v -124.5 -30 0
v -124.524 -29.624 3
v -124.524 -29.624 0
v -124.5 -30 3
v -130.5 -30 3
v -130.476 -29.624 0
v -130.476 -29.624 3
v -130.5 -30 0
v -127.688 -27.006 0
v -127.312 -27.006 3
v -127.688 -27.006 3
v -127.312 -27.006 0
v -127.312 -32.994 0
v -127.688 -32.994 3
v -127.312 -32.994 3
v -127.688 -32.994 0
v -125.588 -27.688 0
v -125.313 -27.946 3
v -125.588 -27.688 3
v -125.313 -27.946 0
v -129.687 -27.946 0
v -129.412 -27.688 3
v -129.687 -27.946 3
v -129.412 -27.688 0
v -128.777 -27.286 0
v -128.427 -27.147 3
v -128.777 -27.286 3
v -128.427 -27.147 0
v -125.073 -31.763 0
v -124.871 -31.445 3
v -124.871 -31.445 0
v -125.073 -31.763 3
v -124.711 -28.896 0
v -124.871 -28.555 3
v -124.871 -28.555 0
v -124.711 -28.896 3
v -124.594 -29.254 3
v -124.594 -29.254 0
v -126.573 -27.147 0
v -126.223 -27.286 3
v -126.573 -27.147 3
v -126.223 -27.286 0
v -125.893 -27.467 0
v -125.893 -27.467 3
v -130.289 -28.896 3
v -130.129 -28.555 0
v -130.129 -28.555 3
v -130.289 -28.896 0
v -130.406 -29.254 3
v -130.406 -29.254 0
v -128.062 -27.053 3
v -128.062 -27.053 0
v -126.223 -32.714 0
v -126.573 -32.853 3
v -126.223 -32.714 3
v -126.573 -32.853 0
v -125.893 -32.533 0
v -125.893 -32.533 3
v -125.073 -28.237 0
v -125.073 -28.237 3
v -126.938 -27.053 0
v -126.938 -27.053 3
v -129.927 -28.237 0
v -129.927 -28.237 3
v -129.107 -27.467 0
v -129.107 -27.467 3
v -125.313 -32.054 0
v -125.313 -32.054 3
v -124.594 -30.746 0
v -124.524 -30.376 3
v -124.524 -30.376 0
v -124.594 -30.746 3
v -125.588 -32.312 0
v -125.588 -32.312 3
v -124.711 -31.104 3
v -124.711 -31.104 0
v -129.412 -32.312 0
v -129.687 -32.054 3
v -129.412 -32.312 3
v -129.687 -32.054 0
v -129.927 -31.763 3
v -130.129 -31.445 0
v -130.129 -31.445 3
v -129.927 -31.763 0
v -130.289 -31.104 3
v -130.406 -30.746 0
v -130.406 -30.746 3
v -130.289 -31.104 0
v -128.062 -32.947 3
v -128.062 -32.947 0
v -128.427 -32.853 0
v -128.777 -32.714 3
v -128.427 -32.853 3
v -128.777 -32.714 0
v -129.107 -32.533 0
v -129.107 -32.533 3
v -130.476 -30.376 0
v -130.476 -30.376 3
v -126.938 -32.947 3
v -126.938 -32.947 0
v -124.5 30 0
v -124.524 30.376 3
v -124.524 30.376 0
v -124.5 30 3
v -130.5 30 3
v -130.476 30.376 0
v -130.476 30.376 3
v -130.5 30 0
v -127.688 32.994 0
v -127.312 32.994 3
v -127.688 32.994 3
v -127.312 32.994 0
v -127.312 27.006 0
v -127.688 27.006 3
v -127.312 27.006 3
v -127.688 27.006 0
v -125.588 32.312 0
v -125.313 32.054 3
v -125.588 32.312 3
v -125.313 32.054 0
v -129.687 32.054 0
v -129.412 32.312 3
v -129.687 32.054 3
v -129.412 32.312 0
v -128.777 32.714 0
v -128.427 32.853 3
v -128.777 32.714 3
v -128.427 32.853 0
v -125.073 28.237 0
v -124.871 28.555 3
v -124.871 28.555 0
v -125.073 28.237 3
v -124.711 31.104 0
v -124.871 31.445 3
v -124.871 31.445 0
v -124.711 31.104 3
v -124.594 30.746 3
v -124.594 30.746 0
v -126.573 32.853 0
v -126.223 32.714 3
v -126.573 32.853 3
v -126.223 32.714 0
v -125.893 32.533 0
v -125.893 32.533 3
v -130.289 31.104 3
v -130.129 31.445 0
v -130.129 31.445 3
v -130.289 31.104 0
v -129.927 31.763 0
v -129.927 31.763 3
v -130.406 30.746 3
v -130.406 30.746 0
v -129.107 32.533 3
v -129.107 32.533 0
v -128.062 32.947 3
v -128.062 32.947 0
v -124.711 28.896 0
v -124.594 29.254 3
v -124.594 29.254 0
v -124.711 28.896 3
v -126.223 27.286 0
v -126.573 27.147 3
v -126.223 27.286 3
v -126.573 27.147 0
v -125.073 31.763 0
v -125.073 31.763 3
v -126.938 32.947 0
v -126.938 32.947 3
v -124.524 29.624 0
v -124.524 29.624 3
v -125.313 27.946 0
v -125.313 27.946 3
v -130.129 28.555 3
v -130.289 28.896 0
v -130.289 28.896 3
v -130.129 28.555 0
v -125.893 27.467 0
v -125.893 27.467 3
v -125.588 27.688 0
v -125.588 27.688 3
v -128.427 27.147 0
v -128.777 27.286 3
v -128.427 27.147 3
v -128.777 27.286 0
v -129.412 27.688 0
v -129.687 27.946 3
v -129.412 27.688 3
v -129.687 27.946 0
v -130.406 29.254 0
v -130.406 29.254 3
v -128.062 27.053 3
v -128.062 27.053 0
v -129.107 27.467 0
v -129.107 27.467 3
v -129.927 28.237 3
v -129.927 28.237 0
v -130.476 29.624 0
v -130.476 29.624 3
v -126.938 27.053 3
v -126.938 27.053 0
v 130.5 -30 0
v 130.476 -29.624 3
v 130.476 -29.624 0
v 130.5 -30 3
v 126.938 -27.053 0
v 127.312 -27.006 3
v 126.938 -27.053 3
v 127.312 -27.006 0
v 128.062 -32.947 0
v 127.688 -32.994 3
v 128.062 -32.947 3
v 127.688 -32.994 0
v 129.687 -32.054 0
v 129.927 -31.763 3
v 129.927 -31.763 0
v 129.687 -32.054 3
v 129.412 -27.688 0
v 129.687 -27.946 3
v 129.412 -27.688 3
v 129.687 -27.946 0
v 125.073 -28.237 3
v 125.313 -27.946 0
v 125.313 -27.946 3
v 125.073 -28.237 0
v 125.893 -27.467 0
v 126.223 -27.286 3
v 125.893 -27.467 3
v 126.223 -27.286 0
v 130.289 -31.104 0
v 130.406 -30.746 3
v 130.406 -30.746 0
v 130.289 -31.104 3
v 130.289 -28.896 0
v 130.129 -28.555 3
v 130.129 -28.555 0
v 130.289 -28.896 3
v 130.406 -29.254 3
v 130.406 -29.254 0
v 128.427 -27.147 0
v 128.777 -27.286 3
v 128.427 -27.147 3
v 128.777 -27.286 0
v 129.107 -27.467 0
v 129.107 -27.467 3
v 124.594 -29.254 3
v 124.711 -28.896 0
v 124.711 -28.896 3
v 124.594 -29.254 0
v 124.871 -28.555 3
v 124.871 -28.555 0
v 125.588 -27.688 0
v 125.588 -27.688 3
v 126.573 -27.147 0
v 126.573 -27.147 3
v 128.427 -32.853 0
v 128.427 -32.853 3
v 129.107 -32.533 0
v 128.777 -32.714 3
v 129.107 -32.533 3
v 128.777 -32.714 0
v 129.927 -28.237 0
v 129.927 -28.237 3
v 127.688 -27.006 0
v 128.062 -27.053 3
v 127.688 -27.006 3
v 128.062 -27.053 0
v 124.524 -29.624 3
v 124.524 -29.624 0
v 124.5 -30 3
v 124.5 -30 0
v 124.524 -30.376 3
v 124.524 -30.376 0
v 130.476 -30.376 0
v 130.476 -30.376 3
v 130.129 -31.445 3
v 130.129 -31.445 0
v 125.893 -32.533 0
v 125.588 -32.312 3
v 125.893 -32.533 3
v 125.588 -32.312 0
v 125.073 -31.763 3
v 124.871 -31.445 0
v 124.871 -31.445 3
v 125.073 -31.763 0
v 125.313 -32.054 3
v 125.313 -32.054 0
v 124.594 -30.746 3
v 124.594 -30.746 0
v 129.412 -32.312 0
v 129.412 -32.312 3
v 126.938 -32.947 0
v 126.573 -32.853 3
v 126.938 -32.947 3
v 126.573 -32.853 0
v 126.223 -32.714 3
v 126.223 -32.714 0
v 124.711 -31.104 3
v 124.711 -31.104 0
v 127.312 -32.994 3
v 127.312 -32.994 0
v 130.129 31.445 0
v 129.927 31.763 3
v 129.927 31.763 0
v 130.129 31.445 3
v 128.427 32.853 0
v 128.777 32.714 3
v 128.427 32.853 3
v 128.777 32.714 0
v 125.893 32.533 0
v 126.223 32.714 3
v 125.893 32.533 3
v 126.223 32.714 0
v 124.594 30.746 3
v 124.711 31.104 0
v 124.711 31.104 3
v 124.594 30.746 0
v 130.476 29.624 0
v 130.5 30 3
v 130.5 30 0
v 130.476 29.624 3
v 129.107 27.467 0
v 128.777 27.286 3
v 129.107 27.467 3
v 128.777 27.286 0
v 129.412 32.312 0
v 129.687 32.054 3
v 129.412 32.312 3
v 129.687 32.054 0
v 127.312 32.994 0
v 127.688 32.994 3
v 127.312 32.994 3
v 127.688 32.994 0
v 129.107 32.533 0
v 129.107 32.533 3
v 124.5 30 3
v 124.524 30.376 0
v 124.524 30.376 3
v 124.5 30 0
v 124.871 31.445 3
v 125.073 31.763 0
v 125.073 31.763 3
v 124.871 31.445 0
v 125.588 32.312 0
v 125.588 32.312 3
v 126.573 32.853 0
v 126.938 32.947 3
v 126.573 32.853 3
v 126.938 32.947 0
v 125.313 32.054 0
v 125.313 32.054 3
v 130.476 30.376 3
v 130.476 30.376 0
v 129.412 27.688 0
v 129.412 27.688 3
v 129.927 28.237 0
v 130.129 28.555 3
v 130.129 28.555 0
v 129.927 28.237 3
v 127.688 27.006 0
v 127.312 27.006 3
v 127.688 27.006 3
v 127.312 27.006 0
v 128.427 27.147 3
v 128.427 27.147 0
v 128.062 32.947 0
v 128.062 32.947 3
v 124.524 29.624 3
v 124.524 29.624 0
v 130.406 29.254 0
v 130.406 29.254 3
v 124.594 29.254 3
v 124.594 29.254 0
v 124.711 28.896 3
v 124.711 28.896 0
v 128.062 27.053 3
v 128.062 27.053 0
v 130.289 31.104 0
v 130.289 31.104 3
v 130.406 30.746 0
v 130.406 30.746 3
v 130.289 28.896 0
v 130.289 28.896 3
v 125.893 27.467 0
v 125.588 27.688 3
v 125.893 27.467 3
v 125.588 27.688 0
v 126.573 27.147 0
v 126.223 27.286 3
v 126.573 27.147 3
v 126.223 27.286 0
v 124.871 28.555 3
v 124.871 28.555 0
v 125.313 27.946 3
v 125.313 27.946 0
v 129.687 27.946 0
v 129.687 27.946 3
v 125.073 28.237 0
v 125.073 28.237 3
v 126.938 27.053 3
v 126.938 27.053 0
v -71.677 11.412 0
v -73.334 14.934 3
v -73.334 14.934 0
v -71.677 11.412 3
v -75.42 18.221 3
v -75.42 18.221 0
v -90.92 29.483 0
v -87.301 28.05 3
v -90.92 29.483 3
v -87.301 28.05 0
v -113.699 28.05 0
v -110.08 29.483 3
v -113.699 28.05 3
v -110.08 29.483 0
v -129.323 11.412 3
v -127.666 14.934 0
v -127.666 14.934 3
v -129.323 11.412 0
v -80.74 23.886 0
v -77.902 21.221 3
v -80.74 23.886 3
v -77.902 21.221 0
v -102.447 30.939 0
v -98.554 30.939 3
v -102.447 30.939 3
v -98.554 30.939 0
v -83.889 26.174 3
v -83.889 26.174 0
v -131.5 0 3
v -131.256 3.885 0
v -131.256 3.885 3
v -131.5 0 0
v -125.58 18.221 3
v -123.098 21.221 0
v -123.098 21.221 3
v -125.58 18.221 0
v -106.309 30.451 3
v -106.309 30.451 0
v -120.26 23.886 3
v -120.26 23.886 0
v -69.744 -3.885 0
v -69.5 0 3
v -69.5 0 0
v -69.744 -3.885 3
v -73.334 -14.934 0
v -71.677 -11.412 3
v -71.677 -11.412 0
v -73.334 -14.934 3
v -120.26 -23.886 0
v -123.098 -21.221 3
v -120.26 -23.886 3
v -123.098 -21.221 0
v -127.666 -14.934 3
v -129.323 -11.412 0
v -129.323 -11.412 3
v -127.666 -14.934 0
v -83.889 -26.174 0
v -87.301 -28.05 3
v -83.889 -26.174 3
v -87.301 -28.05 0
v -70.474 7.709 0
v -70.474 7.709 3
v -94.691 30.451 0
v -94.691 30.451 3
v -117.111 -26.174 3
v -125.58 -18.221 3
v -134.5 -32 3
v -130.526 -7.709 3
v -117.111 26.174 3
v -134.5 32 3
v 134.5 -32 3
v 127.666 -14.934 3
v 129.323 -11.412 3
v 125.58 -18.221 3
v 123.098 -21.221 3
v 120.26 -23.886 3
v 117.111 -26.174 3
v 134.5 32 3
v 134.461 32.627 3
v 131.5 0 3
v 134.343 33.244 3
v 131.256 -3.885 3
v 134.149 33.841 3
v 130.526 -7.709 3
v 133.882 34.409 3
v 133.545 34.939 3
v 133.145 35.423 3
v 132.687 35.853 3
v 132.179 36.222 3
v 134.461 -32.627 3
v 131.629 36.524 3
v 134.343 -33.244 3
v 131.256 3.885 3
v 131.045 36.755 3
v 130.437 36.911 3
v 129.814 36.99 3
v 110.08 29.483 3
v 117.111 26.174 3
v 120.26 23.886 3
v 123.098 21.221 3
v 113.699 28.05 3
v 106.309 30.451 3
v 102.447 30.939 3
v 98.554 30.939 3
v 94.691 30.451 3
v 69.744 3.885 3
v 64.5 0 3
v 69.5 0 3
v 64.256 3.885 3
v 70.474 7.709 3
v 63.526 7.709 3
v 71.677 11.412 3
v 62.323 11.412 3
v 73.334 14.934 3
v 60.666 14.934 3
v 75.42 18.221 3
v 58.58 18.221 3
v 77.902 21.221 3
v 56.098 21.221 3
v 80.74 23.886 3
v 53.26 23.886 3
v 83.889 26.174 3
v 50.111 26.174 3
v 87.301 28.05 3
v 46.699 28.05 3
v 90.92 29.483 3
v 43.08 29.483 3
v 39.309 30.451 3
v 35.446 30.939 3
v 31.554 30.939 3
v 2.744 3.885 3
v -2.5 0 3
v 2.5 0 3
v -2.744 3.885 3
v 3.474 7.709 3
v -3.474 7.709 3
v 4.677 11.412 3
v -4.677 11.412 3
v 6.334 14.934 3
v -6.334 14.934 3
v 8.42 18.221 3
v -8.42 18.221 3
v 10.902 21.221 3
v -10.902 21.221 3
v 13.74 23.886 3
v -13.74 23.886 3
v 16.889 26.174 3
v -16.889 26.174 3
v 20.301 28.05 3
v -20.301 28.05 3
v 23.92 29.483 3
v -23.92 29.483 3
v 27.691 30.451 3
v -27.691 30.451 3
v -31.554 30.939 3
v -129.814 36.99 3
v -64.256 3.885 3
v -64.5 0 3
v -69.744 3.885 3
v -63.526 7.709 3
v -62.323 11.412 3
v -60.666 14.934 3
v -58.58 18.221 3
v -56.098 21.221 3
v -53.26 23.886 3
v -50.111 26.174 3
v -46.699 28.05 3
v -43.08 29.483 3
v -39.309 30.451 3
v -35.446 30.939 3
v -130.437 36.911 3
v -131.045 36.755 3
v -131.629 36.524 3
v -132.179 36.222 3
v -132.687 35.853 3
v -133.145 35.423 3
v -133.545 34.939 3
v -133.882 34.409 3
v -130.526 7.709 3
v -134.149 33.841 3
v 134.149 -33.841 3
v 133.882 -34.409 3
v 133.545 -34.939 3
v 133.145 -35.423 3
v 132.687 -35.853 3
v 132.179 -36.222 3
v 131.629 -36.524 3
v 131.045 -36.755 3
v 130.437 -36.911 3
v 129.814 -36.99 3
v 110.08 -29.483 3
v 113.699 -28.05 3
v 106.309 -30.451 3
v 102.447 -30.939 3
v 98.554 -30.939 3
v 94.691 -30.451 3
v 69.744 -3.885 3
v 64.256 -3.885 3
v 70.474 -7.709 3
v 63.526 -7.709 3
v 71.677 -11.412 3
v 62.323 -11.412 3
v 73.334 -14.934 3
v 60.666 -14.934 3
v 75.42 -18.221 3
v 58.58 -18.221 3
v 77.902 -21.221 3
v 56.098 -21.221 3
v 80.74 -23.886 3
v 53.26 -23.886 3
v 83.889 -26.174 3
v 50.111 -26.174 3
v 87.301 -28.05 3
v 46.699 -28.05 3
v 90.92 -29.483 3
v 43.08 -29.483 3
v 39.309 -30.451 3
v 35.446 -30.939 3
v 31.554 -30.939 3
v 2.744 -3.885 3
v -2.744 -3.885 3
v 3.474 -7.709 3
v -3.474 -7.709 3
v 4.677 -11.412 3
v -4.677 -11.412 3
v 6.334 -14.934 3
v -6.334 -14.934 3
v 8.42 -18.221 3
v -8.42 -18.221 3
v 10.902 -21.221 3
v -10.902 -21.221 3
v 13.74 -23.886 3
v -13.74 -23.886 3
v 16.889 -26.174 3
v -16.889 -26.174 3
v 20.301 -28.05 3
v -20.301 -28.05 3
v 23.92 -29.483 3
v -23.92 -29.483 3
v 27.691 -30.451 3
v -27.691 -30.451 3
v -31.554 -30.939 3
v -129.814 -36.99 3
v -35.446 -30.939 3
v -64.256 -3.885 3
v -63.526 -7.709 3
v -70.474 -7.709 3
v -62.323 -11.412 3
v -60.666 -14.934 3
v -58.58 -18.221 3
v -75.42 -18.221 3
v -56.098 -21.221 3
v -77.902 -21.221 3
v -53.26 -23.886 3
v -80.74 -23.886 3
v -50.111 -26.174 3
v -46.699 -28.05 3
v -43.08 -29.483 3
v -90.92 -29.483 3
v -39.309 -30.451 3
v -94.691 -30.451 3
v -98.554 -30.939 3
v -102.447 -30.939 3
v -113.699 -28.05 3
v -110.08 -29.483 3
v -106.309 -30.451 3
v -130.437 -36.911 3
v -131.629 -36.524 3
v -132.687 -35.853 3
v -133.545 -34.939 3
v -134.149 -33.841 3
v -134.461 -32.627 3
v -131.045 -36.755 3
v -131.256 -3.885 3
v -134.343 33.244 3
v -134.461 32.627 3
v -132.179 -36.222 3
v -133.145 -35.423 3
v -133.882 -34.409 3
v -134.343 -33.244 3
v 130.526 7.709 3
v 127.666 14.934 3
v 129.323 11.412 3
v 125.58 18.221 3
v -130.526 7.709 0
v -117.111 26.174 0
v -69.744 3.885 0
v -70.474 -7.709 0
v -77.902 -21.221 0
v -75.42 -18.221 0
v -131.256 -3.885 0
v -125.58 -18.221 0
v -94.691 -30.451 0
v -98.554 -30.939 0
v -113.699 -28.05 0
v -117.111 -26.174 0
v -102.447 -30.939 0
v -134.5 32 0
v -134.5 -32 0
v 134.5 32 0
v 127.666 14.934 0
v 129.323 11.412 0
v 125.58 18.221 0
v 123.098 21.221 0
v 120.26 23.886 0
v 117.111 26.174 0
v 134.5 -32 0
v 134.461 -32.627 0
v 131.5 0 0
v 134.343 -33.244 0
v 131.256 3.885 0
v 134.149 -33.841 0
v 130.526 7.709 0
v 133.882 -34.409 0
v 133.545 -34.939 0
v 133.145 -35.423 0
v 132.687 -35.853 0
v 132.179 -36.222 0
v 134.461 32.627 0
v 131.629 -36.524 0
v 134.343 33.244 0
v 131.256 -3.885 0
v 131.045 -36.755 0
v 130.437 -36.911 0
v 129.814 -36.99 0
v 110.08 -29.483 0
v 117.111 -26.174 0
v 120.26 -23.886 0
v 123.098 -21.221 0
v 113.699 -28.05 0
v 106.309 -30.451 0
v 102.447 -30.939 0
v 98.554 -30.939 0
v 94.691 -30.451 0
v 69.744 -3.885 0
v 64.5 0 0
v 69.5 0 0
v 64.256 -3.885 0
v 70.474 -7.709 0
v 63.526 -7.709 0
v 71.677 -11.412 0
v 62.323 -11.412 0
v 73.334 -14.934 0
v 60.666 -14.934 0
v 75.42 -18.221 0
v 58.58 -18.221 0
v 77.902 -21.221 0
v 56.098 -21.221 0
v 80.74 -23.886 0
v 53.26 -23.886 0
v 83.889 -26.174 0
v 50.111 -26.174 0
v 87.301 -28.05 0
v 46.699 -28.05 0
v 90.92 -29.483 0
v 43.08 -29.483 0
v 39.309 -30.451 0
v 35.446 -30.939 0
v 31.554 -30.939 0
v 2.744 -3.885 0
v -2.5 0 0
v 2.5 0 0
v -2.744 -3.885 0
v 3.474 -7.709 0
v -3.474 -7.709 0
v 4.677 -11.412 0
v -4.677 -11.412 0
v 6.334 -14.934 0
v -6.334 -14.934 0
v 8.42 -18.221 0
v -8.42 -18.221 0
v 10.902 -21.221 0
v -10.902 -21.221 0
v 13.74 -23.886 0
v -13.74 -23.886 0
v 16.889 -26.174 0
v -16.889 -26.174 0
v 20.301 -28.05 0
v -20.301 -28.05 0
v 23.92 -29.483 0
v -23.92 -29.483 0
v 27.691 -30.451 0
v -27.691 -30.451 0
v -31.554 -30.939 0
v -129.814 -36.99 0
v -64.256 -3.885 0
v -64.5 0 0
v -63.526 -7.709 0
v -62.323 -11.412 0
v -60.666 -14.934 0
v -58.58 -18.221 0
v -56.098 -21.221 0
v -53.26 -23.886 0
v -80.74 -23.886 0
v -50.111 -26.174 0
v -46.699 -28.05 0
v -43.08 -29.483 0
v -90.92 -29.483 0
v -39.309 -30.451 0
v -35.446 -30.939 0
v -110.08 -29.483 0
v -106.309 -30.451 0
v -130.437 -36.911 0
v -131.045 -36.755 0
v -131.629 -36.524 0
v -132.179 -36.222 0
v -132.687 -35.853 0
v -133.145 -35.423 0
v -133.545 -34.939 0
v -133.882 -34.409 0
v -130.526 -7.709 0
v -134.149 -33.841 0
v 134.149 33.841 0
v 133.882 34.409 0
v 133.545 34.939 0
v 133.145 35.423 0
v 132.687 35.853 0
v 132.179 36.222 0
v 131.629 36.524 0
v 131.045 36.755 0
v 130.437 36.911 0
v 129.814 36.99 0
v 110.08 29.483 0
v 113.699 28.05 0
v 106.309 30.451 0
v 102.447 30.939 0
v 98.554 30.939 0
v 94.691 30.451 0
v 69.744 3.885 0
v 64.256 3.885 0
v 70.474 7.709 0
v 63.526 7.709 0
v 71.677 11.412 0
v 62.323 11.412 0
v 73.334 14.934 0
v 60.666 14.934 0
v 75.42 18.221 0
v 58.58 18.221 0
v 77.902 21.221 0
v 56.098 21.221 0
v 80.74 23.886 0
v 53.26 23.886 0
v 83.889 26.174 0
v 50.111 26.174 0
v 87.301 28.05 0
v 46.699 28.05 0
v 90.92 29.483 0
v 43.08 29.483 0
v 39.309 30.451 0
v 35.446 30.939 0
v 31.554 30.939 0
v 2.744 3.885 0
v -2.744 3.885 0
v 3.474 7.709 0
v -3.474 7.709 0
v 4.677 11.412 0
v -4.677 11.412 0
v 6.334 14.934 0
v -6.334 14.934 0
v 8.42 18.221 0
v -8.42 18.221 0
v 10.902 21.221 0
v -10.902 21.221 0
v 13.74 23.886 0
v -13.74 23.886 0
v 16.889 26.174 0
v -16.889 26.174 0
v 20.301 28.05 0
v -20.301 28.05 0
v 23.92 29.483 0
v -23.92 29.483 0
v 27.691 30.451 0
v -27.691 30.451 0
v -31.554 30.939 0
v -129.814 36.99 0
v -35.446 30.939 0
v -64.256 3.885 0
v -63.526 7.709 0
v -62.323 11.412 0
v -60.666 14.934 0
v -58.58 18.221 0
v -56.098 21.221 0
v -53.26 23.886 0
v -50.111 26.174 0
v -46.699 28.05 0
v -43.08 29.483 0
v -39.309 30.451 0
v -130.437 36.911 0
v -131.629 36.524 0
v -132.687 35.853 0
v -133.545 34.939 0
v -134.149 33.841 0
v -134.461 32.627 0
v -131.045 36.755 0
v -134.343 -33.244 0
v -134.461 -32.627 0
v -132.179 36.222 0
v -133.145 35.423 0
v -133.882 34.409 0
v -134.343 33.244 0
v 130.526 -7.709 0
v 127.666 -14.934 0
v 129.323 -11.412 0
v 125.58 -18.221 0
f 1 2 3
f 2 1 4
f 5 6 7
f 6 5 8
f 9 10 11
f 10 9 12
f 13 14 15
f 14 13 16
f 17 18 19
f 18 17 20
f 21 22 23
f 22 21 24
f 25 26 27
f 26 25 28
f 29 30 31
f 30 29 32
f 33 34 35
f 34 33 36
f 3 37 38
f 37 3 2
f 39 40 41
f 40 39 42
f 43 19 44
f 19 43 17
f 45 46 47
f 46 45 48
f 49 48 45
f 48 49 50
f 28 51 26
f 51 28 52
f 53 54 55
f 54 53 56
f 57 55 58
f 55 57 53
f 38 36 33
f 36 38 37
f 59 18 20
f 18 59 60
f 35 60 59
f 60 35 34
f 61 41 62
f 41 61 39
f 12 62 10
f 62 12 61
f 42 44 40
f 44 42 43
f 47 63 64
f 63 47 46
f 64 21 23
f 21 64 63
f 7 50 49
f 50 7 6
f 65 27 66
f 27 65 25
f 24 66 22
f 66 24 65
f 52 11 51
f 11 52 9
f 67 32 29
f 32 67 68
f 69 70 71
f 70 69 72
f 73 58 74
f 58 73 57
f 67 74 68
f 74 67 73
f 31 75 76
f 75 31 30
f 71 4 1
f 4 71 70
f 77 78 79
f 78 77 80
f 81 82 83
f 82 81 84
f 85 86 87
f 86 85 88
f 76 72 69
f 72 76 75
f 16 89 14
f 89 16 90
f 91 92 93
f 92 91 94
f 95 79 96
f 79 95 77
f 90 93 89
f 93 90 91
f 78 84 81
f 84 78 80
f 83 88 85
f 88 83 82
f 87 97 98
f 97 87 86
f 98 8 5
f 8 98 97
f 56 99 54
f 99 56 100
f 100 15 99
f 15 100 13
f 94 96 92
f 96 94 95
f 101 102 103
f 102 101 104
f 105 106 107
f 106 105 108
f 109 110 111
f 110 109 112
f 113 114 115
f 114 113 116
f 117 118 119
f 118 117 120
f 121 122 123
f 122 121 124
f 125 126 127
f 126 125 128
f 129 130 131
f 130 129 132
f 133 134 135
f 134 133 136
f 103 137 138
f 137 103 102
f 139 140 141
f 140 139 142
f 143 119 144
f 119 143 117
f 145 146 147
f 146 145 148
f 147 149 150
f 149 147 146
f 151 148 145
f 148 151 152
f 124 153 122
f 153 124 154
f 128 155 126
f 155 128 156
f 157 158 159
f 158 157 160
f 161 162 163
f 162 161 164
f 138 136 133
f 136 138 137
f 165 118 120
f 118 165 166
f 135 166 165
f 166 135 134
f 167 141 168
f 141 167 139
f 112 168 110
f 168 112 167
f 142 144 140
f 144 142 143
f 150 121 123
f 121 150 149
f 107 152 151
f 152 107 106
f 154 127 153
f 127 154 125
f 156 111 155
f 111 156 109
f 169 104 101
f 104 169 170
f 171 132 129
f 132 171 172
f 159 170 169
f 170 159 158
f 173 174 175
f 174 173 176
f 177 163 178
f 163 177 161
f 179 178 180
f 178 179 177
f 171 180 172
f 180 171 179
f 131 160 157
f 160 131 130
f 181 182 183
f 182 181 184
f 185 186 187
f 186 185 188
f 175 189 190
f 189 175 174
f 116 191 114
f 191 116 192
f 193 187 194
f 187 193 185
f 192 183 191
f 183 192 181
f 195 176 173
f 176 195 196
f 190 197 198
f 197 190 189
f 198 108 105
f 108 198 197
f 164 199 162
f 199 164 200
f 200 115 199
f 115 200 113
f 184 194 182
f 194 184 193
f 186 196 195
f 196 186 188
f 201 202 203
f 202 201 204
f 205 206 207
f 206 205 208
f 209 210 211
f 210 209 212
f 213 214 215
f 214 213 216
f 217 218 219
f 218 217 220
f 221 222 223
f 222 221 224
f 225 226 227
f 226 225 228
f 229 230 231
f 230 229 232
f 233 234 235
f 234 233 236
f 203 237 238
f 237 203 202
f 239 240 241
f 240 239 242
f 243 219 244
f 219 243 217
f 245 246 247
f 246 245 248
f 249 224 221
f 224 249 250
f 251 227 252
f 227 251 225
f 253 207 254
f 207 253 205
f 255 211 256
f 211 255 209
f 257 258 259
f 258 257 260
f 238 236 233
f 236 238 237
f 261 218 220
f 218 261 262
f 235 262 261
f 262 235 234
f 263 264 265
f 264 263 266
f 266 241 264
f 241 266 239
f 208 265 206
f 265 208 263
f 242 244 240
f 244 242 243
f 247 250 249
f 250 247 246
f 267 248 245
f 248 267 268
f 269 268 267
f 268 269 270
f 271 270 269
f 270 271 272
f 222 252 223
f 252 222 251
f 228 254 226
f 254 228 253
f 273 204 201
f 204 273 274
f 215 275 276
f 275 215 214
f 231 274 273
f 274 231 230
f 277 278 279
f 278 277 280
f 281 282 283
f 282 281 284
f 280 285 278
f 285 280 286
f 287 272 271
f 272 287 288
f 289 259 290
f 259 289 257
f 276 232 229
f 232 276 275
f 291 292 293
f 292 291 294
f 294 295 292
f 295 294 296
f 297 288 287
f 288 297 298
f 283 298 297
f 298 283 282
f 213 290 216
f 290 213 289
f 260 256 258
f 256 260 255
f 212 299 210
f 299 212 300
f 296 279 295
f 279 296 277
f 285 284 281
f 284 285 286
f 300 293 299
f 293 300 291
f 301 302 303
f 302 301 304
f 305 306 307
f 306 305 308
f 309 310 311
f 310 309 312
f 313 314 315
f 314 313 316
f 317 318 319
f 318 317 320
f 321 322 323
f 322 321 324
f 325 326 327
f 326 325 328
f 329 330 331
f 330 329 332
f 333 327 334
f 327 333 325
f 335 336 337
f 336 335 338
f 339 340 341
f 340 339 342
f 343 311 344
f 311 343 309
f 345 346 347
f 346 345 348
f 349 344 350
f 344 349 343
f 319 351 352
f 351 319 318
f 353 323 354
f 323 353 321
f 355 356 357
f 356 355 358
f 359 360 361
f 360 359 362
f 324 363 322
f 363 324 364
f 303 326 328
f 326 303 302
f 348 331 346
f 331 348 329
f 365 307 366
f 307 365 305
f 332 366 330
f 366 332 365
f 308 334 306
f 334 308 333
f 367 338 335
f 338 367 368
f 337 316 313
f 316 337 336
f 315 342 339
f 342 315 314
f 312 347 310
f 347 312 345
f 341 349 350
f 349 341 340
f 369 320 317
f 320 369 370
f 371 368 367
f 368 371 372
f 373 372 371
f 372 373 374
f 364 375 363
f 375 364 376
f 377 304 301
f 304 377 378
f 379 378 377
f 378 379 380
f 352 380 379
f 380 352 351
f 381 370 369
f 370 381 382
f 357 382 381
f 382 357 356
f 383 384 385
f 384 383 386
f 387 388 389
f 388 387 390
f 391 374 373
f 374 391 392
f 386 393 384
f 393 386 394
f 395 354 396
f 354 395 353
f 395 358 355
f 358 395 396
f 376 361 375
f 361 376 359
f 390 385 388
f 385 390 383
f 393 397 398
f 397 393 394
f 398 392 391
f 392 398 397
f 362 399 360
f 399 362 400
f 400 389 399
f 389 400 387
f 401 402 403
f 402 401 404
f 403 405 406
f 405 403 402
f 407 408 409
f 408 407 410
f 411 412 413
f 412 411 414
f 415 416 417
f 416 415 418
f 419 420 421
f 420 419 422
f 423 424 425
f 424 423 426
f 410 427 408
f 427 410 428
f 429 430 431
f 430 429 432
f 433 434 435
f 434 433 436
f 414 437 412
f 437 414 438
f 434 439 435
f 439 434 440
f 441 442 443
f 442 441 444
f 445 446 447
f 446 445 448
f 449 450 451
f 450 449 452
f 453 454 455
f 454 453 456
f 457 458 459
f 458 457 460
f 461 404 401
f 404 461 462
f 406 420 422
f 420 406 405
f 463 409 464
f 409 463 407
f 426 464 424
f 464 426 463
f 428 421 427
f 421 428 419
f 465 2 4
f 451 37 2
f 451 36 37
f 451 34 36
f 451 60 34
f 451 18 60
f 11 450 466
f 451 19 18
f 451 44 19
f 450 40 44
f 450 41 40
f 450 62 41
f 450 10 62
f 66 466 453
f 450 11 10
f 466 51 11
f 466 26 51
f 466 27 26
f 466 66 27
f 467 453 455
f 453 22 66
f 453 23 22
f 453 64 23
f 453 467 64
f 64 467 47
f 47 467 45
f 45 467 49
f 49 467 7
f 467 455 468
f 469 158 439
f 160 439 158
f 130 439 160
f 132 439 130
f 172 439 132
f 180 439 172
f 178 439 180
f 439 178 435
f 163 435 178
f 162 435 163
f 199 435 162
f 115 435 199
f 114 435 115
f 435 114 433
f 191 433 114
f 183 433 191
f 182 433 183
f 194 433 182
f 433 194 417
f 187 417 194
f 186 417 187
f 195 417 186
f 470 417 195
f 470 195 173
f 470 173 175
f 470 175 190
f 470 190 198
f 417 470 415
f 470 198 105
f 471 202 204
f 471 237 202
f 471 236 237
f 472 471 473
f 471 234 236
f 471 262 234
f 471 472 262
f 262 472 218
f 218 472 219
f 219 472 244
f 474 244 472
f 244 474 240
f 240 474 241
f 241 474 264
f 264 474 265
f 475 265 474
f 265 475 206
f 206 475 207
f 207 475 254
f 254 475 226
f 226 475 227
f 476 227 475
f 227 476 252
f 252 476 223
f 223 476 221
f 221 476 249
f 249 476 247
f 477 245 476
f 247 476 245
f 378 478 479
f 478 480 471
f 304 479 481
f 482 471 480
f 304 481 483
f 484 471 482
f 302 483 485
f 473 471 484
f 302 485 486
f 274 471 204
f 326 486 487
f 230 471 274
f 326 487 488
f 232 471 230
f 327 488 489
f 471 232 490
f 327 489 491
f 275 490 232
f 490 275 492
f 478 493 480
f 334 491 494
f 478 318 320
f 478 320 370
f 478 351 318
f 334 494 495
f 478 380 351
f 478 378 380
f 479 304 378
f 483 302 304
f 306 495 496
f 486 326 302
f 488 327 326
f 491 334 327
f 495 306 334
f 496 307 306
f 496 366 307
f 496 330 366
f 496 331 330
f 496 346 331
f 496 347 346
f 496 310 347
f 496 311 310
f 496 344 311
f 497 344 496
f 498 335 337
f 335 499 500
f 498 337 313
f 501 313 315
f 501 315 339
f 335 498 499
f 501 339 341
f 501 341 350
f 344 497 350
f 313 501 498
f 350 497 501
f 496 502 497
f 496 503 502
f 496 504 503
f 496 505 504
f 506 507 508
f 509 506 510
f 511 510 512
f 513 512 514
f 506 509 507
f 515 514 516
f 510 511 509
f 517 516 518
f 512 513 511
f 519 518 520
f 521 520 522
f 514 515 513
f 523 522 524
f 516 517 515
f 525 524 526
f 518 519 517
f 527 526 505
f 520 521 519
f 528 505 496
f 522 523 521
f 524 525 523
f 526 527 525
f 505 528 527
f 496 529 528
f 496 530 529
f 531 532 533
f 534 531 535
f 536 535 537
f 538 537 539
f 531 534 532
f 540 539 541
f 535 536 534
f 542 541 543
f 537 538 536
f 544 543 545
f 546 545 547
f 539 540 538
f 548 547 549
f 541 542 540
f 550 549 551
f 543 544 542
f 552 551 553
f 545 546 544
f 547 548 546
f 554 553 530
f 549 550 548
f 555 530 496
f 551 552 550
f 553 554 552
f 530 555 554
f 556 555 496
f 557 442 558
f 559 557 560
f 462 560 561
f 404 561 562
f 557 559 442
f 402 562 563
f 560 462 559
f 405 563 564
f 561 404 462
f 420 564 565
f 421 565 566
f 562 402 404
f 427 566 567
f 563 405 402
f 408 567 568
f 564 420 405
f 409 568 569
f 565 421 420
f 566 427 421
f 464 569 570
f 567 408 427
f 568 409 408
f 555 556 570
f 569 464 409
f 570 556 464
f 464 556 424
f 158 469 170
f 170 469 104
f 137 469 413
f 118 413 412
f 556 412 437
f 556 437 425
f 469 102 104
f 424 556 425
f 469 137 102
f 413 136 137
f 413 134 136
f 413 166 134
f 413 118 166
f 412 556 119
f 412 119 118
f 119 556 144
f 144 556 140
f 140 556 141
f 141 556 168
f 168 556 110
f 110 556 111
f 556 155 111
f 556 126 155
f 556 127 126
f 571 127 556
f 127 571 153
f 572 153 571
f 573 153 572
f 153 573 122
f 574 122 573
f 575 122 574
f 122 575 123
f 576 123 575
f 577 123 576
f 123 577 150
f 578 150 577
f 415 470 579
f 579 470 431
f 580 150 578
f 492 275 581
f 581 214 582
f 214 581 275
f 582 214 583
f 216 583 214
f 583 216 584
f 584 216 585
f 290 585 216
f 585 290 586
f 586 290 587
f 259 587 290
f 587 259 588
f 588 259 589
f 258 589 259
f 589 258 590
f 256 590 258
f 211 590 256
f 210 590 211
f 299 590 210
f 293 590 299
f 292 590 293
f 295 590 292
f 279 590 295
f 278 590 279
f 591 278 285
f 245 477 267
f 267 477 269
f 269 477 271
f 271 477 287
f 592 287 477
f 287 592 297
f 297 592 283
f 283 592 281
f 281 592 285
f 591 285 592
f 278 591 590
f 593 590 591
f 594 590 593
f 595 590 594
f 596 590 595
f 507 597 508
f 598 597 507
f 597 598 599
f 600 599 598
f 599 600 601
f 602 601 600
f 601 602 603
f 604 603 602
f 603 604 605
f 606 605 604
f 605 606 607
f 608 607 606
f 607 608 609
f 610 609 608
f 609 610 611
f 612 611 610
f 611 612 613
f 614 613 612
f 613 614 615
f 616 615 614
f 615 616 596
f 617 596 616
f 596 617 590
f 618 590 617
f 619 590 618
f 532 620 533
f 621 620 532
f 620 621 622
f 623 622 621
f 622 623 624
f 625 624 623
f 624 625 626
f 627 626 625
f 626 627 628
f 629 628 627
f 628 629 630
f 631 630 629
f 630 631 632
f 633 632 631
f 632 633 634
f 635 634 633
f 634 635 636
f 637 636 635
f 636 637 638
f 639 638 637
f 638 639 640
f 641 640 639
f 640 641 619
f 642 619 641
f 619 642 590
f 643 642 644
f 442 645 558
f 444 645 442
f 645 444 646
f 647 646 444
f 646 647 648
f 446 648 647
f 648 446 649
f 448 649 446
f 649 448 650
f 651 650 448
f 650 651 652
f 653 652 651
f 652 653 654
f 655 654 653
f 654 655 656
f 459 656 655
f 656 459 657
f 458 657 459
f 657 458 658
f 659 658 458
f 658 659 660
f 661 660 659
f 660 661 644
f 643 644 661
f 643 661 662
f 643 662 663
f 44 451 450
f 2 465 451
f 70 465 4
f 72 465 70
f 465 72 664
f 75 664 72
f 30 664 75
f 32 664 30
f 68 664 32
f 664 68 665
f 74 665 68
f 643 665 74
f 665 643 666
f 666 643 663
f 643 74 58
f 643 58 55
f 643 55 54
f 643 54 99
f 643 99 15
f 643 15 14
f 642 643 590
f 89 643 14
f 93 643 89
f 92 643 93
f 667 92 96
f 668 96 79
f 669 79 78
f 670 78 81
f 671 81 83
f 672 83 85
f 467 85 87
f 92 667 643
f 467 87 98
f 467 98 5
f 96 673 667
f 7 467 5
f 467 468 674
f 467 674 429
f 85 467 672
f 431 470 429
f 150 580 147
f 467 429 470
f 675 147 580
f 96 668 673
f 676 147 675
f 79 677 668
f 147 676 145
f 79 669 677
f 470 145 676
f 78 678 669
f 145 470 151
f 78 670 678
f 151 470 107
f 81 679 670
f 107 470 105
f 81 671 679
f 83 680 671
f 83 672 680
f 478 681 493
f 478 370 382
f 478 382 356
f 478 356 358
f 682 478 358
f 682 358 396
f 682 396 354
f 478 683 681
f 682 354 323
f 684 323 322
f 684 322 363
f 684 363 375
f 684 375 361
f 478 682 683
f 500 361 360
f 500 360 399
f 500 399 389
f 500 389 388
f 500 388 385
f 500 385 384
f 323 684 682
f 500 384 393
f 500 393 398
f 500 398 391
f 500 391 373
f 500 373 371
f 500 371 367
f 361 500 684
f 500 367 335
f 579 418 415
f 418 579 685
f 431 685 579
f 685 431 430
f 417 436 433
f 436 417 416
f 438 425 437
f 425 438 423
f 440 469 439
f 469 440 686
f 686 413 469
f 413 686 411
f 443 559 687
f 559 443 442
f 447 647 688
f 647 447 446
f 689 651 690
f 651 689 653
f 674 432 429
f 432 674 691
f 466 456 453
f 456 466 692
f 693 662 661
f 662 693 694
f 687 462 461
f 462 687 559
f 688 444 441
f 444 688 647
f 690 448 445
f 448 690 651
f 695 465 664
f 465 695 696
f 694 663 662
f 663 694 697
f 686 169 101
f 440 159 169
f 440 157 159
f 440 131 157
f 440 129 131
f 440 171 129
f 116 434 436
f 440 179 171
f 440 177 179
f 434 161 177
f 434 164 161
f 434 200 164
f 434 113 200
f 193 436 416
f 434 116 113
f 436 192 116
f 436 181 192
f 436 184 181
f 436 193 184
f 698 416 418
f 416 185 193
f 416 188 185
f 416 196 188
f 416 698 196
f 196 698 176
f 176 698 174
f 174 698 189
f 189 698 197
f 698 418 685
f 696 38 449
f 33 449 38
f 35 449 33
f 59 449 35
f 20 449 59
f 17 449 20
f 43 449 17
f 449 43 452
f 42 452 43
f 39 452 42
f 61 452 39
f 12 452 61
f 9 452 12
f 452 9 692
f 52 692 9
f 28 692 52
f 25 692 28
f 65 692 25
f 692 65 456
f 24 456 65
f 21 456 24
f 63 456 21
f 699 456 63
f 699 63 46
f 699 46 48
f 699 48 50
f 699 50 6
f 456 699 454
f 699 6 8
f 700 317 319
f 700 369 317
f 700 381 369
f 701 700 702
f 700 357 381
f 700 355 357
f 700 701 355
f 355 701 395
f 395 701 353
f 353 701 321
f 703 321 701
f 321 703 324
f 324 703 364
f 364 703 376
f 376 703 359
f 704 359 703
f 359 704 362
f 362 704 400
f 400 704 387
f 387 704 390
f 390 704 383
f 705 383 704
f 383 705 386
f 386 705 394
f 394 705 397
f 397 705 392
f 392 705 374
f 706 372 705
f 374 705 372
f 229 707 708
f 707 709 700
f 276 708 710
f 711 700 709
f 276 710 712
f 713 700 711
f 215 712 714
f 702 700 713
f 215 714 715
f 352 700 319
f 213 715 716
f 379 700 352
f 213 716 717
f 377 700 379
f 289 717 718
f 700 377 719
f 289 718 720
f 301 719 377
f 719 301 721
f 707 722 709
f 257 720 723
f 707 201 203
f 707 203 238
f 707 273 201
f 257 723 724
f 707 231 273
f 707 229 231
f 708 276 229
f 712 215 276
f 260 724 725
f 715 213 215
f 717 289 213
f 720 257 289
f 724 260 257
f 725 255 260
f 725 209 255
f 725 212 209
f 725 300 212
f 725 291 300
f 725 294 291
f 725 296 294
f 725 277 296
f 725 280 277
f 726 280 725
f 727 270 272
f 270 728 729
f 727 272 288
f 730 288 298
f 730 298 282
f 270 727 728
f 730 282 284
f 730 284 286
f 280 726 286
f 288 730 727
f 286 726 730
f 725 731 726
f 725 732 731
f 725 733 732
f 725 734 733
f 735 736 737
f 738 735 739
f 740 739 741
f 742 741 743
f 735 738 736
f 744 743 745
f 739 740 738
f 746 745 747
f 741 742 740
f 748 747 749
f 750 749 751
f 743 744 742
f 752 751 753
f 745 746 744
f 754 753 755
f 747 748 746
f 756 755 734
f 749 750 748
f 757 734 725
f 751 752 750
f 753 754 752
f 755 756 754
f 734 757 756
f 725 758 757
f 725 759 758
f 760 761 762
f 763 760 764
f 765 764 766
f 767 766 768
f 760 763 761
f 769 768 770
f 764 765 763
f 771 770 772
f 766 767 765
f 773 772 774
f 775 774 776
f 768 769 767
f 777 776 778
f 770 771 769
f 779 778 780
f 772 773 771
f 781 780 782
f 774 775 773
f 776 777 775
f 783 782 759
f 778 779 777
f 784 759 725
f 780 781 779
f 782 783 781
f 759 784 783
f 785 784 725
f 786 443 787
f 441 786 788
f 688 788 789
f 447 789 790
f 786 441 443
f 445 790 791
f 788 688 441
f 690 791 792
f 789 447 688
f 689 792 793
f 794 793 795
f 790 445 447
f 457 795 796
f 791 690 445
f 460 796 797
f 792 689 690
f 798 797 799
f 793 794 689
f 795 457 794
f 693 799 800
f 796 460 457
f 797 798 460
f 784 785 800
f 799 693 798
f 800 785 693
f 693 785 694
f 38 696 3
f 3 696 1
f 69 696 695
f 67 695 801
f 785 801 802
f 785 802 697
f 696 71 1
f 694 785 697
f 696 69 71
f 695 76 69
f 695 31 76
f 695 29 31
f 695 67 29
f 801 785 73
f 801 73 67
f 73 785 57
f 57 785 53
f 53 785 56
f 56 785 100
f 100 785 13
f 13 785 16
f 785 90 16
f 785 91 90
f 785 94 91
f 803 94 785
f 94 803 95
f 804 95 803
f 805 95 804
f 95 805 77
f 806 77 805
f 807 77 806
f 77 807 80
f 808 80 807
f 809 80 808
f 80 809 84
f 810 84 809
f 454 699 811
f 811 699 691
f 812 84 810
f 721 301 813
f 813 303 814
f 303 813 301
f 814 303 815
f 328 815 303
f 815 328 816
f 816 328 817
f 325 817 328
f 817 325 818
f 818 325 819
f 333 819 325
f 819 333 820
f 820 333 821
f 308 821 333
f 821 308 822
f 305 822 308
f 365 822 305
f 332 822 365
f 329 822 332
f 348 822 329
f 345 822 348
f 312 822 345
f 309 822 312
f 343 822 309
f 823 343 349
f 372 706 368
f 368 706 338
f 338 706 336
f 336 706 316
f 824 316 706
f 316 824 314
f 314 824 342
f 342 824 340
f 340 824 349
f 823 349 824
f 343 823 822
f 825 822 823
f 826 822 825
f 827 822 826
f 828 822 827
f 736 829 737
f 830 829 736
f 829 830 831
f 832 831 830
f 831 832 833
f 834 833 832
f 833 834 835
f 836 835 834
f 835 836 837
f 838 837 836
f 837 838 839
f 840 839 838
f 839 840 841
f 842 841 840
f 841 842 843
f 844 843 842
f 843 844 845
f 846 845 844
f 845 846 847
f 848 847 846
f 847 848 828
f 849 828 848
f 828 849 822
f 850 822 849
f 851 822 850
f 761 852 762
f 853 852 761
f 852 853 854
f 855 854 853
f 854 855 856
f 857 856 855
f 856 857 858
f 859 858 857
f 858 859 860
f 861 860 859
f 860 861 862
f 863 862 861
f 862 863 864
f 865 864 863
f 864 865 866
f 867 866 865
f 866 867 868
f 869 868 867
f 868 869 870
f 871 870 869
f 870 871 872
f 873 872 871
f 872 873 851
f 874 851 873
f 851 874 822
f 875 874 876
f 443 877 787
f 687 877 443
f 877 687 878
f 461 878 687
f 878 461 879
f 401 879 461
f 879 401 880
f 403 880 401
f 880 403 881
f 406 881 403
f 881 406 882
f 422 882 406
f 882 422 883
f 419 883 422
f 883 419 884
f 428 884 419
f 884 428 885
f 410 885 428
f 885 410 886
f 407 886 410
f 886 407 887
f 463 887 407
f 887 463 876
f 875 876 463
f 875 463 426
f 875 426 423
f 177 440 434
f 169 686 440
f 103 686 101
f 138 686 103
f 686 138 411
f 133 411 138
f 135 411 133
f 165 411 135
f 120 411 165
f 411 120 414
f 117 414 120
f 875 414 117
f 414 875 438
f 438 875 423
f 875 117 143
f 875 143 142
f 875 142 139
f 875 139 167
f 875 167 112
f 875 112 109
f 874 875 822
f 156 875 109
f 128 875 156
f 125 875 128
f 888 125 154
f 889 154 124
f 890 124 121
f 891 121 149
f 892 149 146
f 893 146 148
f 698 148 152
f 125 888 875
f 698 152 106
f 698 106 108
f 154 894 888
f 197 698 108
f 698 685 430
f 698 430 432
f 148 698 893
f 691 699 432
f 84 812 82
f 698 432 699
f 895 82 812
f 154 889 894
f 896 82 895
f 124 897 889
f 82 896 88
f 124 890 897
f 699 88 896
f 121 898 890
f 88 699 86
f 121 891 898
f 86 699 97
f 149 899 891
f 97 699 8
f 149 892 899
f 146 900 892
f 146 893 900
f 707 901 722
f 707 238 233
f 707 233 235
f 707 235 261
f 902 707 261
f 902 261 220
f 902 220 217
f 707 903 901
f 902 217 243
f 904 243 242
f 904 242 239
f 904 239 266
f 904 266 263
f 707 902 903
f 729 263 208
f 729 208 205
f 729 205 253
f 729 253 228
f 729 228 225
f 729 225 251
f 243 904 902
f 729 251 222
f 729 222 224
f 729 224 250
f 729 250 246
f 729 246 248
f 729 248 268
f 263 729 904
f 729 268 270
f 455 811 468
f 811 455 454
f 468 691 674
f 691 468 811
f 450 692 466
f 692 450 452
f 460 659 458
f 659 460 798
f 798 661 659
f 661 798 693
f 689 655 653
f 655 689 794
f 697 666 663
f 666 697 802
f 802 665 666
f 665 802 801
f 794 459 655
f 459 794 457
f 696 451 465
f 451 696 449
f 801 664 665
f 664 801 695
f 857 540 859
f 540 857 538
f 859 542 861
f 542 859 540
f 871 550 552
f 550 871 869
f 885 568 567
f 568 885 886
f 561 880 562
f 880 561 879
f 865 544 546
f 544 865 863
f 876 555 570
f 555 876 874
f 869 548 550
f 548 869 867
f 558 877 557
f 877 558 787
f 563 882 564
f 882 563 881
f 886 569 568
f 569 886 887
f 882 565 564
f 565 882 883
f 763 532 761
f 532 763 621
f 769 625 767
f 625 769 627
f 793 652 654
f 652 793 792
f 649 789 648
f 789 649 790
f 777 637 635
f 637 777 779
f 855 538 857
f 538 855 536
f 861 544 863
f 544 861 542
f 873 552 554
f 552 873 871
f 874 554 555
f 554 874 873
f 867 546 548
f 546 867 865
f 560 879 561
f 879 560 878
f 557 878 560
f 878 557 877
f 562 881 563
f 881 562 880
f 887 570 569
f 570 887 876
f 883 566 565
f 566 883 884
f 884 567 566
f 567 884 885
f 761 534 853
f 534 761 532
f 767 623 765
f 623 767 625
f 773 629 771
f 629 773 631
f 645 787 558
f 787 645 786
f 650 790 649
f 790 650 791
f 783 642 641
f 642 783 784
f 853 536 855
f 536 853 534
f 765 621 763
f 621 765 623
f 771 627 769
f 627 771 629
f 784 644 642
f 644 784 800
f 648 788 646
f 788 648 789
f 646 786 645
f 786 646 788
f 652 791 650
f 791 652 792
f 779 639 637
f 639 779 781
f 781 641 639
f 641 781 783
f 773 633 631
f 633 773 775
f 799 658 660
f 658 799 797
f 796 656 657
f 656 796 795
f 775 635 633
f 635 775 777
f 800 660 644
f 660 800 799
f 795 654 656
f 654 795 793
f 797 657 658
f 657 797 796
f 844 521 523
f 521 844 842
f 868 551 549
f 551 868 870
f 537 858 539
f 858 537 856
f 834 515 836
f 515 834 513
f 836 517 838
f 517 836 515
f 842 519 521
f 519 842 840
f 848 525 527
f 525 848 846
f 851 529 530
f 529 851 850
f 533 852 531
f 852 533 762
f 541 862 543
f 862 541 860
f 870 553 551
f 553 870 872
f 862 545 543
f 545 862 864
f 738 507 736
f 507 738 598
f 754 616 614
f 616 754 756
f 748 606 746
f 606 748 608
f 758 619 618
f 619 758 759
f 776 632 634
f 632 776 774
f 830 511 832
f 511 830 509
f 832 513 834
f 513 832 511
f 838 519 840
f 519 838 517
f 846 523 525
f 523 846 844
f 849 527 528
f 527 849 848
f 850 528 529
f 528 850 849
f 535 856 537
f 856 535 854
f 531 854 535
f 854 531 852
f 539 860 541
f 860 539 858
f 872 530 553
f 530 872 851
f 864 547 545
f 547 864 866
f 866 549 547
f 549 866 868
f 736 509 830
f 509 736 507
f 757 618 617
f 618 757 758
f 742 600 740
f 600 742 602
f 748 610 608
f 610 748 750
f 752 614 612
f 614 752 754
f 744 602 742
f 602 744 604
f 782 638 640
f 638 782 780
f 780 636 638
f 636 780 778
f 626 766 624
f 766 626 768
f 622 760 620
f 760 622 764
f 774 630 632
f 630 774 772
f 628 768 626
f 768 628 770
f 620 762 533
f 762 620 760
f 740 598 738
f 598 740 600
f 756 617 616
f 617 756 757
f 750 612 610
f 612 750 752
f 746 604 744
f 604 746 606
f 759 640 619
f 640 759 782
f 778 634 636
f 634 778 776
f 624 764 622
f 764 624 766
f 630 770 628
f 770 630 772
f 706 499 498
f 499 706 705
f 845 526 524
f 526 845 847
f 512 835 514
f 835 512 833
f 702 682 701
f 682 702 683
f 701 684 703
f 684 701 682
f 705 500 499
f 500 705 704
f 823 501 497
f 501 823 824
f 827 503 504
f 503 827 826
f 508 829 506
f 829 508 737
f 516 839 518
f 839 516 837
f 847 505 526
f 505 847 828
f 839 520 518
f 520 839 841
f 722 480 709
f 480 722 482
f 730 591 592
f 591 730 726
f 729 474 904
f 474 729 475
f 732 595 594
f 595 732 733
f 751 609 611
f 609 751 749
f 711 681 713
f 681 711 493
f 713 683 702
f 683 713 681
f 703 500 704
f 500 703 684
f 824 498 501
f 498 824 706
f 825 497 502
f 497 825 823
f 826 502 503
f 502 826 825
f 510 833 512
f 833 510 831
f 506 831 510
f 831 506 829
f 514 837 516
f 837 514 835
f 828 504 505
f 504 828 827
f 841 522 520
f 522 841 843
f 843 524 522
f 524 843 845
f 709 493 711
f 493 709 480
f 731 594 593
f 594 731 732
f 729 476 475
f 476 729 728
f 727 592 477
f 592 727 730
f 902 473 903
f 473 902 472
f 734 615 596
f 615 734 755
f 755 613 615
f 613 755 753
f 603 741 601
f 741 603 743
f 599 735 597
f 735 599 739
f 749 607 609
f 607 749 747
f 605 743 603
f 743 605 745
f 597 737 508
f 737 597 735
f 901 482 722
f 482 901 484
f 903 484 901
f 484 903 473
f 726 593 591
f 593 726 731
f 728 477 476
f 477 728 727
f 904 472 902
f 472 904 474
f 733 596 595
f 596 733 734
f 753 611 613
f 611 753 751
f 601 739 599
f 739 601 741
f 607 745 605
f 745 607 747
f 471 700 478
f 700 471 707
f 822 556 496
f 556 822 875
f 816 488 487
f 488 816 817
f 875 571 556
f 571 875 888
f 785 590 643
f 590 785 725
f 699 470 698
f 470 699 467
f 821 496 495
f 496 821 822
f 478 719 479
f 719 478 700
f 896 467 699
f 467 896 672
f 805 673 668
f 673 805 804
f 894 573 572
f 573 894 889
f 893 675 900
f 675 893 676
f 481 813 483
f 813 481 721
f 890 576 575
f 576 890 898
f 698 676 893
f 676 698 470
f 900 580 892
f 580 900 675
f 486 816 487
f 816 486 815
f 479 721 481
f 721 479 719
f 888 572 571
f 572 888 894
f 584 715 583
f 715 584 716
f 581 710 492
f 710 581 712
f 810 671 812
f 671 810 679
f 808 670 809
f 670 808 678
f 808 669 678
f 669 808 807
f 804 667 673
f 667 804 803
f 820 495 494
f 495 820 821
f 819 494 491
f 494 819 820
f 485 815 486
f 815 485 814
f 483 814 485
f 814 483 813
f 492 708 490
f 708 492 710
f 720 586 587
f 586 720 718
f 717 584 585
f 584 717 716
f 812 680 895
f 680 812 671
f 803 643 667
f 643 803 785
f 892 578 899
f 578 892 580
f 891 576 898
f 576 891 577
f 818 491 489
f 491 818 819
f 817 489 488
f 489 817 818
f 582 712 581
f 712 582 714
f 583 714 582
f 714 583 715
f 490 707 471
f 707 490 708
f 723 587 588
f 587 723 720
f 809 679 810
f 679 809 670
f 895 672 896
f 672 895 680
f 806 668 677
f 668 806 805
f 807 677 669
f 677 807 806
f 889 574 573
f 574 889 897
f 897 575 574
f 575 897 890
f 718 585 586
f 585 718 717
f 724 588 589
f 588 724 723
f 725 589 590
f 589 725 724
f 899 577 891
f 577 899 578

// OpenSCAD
$fn = 50;


difference() {
	union() {
		hull() {
			translate(v = [-129.5000000000, 32.0000000000, 0]) {
				cylinder(h = 3, r = 5);
			}
			translate(v = [129.5000000000, 32.0000000000, 0]) {
				cylinder(h = 3, r = 5);
			}
			translate(v = [-129.5000000000, -32.0000000000, 0]) {
				cylinder(h = 3, r = 5);
			}
			translate(v = [129.5000000000, -32.0000000000, 0]) {
				cylinder(h = 3, r = 5);
			}
		}
	}
	union() {
		#translate(v = [-127.5000000000, -30.0000000000, -100.0000000000]) {
			cylinder(h = 200, r = 3.0000000000);
		}
		#translate(v = [-127.5000000000, 30.0000000000, -100.0000000000]) {
			cylinder(h = 200, r = 3.0000000000);
		}
		#translate(v = [127.5000000000, -30.0000000000, -100.0000000000]) {
			cylinder(h = 200, r = 3.0000000000);
		}
		#translate(v = [127.5000000000, 30.0000000000, -100.0000000000]) {
			cylinder(h = 200, r = 3.0000000000);
		}
		#translate(v = [-100.5000000000, 0, 0]) {
			cylinder(h = 3, r = 31.0000000000);
		}
		#translate(v = [-33.5000000000, 0, 0]) {
			cylinder(h = 3, r = 31.0000000000);
		}
		#translate(v = [33.5000000000, 0, 0]) {
			cylinder(h = 3, r = 31.0000000000);
		}
		#translate(v = [100.5000000000, 0, 0]) {
			cylinder(h = 3, r = 31.0000000000);
		}
	}
}
